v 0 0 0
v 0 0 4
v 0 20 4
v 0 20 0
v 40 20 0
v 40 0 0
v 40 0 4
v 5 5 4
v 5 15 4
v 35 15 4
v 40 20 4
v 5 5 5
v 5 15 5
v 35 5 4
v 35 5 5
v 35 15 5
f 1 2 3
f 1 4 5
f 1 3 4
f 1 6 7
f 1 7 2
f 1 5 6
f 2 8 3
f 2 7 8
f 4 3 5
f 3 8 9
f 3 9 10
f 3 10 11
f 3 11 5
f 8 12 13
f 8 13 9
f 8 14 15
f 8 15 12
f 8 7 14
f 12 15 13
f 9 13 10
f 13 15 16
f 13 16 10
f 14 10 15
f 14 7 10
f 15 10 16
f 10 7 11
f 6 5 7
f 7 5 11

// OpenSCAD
// Two colours in one object: a red base with a white raised label.
color("red") cube([40, 20, 4]);
color("white") translate([5, 5, 4]) cube([30, 10, 1]);
